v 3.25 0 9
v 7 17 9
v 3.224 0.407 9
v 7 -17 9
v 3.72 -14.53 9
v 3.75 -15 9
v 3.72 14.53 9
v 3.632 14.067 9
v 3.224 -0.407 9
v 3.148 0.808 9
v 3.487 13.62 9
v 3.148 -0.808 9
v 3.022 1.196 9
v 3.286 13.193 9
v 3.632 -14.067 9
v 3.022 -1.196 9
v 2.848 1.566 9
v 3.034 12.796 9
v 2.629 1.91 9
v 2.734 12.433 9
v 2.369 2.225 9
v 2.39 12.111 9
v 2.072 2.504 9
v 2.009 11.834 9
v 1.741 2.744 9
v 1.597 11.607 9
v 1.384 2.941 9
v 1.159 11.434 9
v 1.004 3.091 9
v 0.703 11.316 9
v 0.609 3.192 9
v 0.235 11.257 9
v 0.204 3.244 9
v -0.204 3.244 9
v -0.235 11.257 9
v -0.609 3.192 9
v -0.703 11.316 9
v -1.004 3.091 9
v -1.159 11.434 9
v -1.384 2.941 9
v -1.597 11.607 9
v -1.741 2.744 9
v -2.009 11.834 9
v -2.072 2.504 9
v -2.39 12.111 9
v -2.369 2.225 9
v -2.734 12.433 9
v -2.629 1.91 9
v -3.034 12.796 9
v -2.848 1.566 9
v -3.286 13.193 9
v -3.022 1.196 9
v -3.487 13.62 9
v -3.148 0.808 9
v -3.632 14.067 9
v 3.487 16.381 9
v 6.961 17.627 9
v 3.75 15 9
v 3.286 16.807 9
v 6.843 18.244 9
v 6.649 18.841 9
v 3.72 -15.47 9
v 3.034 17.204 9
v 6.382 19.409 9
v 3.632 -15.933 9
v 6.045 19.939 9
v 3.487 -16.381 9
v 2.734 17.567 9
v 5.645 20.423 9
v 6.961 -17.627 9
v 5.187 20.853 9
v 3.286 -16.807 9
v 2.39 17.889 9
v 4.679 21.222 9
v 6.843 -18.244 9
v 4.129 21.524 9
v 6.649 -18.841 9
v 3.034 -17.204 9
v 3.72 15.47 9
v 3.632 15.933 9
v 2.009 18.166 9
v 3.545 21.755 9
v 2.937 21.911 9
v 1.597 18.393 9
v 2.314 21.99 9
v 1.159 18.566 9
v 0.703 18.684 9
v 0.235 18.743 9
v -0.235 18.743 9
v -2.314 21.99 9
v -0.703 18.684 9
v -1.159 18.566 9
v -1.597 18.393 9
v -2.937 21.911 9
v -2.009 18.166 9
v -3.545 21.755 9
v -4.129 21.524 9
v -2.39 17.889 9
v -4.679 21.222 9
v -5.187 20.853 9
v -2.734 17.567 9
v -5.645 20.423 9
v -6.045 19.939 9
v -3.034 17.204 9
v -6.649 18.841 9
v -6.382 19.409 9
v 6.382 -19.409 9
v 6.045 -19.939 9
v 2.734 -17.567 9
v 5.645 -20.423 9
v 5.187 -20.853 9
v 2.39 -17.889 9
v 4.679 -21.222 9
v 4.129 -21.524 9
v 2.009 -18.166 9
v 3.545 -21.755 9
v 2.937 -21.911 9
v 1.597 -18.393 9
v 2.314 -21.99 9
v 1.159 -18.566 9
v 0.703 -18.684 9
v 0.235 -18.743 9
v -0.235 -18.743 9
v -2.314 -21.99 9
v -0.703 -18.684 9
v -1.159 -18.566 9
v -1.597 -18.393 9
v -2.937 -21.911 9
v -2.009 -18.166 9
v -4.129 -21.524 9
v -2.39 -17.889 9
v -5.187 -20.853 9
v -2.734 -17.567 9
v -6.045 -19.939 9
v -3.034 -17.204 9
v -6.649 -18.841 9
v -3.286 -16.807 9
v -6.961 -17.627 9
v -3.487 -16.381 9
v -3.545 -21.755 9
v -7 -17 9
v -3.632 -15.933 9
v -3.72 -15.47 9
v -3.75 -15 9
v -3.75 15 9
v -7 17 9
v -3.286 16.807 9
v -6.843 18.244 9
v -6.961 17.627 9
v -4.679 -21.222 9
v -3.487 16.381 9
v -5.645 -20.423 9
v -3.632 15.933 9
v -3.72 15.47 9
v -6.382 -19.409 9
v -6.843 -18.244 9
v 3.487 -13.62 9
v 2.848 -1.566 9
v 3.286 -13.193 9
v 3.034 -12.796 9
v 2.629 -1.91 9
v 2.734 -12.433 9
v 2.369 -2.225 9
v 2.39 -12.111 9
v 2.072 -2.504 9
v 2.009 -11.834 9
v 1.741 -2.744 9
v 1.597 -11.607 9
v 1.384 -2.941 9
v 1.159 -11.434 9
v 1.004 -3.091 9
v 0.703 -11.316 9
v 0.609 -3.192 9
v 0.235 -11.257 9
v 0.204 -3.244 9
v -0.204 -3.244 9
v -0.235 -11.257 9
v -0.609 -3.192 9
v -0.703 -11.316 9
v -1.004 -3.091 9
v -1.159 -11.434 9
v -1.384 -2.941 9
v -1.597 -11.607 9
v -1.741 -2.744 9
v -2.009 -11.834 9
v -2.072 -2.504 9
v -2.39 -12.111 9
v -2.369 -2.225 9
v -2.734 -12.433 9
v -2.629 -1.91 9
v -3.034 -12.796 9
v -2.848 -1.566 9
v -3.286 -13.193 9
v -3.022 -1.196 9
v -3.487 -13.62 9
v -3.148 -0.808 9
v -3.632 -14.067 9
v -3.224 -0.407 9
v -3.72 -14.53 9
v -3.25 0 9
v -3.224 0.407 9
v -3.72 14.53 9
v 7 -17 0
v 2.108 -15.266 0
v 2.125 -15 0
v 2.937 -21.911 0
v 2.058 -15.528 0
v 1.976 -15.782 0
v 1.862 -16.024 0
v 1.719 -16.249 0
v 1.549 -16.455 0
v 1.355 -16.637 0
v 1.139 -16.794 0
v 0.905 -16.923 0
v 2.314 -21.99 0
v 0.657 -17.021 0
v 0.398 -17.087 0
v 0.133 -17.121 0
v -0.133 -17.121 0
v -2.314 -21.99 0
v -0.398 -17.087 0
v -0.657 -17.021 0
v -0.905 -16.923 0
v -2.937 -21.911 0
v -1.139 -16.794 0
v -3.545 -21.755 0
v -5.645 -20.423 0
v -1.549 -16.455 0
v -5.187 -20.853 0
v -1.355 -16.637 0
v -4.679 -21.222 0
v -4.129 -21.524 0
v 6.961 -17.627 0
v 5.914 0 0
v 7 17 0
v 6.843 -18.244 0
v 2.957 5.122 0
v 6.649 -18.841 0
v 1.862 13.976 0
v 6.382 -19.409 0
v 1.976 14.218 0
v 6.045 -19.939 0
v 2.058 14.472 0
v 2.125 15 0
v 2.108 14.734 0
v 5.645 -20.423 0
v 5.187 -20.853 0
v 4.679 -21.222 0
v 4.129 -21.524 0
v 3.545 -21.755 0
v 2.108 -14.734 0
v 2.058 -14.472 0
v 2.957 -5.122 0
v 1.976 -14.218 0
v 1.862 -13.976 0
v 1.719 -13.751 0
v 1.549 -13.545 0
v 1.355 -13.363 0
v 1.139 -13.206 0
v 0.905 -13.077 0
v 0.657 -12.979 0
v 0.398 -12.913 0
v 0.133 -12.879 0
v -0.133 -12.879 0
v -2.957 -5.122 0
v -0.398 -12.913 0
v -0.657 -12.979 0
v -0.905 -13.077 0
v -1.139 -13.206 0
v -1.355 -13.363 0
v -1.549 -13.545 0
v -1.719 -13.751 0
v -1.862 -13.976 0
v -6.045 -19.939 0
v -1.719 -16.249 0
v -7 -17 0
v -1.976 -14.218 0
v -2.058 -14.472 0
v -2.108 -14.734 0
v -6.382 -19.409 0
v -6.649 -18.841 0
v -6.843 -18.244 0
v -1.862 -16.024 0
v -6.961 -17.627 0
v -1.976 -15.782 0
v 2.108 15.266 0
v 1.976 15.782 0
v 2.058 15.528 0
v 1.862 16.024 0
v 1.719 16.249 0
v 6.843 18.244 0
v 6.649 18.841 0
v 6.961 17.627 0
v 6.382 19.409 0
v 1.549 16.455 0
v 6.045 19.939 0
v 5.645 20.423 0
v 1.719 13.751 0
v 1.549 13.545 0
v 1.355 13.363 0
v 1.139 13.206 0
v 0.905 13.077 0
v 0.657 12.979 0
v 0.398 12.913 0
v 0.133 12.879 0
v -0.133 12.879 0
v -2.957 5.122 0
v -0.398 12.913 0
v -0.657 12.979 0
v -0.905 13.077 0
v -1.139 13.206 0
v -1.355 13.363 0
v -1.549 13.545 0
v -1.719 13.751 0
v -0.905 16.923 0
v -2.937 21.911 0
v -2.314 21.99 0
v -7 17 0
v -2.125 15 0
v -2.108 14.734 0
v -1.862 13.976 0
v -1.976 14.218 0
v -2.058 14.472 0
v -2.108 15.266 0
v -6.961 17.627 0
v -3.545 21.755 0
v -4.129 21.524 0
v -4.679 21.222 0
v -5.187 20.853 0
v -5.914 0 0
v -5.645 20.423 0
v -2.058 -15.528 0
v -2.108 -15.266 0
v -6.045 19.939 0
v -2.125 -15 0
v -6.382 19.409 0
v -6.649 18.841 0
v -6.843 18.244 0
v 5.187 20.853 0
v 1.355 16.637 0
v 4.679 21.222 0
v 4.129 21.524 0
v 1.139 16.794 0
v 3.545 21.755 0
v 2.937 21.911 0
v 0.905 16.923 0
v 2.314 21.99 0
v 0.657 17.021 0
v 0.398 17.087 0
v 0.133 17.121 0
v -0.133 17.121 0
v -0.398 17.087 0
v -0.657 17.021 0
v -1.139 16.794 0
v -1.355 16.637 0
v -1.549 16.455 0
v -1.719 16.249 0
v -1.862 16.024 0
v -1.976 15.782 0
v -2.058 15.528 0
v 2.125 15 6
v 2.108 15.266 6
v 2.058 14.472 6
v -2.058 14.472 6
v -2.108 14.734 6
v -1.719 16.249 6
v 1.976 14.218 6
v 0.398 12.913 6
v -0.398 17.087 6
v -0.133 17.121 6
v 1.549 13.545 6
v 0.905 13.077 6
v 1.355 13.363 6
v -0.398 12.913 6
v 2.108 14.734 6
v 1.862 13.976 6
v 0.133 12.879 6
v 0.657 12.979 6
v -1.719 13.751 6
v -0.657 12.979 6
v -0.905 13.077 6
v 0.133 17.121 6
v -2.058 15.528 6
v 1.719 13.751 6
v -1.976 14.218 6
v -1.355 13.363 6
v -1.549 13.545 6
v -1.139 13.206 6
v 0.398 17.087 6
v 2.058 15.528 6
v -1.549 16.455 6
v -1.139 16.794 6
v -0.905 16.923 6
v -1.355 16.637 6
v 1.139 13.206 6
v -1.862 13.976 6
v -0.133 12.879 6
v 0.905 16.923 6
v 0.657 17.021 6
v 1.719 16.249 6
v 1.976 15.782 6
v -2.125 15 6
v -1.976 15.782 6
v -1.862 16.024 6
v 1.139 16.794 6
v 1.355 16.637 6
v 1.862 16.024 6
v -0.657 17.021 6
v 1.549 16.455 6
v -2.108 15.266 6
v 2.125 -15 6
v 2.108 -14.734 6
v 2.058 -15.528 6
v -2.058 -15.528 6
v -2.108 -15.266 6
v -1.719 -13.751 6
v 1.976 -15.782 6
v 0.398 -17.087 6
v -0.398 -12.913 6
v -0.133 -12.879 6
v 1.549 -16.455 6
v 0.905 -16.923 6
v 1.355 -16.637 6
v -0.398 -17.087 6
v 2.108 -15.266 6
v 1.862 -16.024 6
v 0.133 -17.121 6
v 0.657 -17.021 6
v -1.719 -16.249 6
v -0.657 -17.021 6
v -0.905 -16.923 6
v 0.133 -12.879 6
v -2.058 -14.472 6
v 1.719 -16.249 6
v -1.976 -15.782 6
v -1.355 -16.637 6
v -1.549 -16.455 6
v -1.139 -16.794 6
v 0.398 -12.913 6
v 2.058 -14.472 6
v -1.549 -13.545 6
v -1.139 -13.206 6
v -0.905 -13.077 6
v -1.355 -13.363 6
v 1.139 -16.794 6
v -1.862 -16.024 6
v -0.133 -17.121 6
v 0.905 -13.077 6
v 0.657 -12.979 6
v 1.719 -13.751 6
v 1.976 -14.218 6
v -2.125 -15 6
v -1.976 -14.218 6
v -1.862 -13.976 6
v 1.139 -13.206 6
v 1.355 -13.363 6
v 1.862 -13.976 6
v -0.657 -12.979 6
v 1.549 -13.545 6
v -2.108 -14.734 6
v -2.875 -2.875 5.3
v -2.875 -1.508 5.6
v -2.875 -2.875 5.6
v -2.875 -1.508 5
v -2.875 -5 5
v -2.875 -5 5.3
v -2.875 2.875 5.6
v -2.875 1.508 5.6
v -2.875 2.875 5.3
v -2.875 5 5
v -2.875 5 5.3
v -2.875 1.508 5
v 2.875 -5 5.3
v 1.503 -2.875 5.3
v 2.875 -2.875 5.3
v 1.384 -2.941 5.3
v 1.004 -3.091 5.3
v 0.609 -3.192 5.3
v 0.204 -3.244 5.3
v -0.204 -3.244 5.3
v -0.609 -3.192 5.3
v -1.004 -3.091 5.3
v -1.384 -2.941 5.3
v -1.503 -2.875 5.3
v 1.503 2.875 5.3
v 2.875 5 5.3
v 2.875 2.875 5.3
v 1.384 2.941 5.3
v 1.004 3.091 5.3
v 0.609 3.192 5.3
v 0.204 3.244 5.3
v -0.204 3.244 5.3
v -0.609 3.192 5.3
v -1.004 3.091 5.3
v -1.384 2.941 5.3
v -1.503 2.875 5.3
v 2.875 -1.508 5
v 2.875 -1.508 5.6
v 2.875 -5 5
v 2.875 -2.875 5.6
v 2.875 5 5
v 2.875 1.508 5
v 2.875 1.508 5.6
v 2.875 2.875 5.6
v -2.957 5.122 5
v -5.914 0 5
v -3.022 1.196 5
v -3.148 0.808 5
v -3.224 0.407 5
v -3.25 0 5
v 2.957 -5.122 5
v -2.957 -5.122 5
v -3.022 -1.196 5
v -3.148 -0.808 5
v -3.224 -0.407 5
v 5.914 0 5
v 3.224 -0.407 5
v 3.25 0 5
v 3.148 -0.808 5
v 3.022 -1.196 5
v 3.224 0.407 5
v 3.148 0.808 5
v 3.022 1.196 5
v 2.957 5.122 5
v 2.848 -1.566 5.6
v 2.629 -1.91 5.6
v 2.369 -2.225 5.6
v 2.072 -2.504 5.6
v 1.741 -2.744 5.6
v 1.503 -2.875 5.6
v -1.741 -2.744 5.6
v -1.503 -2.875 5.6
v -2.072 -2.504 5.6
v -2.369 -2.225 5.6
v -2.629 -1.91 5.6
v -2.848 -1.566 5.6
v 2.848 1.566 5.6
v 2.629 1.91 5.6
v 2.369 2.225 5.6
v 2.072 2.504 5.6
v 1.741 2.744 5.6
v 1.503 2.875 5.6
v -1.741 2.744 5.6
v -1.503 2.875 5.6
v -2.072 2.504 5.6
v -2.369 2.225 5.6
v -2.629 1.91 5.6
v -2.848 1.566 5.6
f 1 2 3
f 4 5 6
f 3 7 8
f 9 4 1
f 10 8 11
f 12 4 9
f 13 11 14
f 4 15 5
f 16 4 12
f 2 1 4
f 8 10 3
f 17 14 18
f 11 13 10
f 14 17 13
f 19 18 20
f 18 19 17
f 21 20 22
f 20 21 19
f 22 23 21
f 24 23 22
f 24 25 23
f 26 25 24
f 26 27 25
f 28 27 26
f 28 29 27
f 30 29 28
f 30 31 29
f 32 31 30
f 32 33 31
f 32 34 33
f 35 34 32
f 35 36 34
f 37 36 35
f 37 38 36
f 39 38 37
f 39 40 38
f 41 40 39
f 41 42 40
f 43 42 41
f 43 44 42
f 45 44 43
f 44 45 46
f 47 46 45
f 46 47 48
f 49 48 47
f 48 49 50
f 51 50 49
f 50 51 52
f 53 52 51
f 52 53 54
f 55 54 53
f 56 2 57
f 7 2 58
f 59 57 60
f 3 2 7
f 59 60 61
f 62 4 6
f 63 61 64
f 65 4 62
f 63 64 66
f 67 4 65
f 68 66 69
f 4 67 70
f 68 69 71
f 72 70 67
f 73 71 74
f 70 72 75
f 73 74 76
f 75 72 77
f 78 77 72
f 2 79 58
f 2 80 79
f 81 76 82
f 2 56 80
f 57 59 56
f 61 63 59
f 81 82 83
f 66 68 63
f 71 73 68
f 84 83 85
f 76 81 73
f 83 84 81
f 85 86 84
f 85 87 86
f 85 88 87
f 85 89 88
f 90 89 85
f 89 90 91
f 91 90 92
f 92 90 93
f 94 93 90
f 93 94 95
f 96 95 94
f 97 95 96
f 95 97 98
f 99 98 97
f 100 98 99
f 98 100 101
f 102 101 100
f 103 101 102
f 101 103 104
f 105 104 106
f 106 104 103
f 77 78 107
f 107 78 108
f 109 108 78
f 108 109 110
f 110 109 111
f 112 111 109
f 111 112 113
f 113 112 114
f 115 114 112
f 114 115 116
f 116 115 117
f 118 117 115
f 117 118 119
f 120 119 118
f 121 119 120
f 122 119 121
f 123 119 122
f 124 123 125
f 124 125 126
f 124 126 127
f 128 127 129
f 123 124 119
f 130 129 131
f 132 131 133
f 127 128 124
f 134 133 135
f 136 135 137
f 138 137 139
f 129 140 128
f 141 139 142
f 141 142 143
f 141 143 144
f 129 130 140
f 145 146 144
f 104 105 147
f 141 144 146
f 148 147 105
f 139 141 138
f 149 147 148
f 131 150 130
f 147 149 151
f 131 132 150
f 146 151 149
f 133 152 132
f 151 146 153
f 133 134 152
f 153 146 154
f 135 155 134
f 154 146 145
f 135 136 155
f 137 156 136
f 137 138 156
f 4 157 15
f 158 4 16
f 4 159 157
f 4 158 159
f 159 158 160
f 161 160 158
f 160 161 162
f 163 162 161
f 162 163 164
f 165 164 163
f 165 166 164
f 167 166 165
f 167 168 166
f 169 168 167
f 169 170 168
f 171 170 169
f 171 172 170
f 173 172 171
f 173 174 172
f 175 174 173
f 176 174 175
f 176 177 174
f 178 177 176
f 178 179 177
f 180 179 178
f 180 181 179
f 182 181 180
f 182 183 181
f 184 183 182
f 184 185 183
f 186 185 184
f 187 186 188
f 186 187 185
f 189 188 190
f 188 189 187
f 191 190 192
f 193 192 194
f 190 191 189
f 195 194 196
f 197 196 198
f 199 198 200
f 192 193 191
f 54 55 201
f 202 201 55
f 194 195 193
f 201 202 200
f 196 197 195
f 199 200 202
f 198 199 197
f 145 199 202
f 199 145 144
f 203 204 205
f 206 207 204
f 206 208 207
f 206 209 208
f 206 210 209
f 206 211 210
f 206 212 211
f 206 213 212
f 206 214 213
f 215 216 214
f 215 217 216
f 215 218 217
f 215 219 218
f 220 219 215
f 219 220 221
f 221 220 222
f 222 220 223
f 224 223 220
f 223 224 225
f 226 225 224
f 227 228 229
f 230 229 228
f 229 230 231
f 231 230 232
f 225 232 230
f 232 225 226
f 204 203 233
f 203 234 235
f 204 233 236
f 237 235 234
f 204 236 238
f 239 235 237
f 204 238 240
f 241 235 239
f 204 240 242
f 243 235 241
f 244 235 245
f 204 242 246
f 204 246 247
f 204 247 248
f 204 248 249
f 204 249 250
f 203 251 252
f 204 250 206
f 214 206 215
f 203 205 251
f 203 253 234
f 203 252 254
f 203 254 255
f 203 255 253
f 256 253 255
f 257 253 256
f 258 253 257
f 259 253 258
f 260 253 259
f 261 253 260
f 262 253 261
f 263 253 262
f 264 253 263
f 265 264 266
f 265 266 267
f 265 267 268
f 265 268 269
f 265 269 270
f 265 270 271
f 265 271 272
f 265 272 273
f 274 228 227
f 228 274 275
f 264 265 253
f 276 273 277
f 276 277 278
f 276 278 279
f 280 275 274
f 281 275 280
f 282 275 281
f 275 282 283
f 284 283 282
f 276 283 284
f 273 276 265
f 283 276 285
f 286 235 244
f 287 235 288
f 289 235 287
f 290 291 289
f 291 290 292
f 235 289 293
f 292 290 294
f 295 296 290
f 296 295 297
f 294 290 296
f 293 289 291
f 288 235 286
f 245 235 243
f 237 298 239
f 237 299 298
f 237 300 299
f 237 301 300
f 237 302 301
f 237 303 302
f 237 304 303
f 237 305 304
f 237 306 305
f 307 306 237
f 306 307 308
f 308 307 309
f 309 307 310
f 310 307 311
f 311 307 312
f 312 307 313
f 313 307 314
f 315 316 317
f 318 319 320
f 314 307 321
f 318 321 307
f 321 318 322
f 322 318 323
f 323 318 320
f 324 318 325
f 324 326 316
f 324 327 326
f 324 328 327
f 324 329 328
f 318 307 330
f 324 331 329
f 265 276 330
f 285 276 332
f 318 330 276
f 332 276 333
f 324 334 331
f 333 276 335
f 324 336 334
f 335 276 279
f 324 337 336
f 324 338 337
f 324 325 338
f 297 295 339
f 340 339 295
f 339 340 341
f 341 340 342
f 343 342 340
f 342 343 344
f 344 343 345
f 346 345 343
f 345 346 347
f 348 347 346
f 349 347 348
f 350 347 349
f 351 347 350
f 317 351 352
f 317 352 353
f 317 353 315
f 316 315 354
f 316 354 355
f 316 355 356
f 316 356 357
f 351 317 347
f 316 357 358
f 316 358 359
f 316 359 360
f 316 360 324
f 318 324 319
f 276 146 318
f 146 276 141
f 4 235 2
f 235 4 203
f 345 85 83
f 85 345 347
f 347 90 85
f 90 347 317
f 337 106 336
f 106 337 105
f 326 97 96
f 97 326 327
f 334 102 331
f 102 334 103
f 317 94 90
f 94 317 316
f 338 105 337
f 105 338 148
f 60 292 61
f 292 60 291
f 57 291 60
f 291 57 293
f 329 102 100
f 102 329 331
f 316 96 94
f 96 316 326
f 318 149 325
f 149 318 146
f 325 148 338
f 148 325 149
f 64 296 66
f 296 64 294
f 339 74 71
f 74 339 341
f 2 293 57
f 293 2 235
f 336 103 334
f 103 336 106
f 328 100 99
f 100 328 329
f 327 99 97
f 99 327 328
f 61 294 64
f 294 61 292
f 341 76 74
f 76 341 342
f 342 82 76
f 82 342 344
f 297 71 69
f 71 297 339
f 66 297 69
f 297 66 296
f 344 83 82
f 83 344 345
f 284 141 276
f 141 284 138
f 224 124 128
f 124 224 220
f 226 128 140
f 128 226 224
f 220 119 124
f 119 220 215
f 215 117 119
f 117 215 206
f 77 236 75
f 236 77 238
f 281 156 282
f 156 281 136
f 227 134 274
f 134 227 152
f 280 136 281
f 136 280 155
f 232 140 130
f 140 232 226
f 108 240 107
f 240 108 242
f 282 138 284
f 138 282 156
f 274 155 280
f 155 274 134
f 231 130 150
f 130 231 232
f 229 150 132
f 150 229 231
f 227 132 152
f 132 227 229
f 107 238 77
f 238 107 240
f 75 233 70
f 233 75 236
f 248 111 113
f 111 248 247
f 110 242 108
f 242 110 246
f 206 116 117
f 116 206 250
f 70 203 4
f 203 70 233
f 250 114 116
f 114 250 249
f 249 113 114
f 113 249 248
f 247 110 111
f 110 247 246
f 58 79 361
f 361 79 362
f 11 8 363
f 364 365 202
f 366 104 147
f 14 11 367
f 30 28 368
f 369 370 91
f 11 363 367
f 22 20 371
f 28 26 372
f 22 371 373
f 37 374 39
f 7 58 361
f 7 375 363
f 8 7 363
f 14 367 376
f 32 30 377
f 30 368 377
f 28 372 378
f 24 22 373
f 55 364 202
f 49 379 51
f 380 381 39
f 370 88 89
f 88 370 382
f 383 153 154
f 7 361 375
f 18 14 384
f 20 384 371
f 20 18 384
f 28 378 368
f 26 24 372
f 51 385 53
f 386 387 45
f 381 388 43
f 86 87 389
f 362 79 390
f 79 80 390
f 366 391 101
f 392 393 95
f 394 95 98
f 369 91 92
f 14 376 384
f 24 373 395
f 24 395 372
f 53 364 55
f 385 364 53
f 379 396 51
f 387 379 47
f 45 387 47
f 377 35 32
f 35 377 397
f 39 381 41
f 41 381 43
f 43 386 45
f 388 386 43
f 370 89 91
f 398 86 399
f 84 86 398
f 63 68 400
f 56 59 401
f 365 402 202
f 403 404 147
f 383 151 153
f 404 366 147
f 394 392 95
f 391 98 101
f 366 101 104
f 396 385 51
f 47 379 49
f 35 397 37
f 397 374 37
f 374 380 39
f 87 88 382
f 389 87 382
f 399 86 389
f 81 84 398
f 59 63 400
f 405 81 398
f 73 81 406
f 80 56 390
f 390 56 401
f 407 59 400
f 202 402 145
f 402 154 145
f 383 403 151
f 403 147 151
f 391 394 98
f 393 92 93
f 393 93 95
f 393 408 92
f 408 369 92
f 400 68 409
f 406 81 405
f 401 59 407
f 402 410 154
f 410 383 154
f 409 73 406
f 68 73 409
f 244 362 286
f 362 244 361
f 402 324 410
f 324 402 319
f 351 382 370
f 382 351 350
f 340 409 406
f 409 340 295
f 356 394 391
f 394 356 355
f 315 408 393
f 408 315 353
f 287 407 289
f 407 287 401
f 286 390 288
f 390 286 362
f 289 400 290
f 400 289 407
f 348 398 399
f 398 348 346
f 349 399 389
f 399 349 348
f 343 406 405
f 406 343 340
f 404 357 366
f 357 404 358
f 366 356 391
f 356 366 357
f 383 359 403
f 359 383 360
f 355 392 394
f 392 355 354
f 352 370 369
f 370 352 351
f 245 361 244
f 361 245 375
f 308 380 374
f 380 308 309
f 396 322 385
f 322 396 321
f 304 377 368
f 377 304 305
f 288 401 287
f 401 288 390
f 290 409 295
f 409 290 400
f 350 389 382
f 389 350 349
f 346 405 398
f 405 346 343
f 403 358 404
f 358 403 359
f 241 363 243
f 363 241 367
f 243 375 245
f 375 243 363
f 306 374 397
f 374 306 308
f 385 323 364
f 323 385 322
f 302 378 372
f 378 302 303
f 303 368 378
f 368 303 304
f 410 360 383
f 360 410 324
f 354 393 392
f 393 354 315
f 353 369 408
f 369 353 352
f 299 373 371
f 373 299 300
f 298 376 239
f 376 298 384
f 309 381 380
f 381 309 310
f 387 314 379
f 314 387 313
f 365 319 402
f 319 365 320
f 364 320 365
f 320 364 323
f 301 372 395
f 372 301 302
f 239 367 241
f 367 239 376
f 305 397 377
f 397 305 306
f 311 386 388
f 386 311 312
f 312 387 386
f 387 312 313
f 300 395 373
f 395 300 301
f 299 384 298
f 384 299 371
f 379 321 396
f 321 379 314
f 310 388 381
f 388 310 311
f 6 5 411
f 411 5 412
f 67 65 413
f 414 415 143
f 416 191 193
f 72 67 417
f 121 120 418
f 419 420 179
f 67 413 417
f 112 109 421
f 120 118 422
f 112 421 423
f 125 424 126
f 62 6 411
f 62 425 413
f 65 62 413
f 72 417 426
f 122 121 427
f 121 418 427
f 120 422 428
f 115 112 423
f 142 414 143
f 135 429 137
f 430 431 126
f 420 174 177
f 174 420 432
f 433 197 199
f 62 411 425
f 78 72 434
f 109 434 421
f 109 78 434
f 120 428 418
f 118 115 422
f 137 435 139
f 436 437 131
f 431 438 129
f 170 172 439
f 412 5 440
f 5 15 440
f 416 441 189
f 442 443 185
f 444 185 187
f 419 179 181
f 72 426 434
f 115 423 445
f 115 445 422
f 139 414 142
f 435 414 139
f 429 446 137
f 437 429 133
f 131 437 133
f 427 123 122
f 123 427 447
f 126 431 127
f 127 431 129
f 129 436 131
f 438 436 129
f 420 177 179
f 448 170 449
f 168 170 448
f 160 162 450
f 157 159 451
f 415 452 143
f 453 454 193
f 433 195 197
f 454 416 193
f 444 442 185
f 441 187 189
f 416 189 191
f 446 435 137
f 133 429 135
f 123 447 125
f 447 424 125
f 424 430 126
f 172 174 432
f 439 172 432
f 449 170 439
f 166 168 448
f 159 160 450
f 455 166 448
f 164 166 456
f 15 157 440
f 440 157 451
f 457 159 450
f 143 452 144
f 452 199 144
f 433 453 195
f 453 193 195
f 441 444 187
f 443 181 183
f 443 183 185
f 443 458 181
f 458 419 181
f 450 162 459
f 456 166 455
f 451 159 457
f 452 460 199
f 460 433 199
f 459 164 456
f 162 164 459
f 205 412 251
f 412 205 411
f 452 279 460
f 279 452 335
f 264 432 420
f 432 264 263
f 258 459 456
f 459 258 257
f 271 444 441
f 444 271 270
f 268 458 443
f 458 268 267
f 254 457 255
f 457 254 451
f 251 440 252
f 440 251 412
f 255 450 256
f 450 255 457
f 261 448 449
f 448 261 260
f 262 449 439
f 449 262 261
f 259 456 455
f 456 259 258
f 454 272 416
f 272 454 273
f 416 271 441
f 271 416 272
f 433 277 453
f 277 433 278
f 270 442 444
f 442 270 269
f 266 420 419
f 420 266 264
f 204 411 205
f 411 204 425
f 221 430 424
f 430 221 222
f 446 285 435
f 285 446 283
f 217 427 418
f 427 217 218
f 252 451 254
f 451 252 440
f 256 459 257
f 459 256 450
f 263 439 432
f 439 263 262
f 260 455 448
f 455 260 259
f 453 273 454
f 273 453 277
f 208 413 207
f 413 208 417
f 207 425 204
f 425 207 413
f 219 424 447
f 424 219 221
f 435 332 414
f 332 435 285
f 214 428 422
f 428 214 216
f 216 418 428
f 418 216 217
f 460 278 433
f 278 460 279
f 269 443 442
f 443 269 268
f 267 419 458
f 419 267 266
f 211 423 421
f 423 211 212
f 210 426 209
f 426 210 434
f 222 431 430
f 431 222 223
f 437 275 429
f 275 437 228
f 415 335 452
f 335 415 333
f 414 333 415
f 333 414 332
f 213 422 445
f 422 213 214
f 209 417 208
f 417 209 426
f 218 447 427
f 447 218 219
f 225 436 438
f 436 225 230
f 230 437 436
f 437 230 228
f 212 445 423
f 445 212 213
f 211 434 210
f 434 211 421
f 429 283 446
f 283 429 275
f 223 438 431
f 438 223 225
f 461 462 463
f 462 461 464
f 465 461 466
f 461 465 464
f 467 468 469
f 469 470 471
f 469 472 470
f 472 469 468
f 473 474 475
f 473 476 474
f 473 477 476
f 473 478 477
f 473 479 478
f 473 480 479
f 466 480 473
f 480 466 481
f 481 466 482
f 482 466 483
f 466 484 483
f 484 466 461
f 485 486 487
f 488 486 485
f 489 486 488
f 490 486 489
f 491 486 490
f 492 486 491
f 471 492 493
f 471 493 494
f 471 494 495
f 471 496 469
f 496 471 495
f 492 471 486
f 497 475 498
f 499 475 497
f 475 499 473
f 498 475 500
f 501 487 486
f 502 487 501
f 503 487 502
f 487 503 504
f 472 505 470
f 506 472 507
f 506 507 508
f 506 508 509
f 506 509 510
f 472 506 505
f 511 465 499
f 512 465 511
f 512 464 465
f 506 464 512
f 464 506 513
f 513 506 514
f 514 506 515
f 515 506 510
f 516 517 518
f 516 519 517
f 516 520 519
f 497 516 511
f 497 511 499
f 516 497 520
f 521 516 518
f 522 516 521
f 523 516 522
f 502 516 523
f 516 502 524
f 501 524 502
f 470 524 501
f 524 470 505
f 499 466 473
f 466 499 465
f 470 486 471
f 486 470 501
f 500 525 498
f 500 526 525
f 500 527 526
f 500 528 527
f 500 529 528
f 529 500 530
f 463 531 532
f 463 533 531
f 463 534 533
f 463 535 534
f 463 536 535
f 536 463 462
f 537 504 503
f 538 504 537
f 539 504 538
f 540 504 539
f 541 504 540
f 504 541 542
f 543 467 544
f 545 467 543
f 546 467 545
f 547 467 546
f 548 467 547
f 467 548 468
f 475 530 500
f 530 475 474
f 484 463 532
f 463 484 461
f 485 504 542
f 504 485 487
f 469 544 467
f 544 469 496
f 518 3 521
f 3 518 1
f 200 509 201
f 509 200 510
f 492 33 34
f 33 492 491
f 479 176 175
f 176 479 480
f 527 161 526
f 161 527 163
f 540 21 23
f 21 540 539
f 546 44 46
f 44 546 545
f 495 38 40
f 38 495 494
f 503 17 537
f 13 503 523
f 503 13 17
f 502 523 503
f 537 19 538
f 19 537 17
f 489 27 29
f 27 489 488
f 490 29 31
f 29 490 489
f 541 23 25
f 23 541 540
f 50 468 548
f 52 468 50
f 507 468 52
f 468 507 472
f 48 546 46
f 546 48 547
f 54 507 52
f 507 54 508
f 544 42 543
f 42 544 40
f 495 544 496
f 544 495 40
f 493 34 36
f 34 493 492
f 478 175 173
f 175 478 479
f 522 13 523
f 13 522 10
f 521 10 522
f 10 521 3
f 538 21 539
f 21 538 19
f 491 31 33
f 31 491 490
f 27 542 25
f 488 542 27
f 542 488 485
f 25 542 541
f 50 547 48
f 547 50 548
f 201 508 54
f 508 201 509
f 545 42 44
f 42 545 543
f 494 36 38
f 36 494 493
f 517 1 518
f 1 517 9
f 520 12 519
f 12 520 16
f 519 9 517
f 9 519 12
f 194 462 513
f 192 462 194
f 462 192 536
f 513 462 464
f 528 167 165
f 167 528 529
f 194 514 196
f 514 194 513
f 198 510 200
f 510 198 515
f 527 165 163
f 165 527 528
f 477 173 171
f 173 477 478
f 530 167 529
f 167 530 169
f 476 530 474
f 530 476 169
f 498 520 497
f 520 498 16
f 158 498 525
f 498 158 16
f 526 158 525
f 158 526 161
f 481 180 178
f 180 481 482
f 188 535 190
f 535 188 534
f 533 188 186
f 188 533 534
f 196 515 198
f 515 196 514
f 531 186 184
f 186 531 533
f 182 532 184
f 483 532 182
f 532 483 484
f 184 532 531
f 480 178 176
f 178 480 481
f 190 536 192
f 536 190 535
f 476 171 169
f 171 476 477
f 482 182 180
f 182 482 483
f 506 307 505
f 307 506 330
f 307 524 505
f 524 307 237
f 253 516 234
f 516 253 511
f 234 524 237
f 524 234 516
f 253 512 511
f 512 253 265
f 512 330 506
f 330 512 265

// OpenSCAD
$fn = 50;


difference() {
	union() {
		cylinder(h = 9, r = 7.0000000000);
		translate(v = [0.0000000000, 7.5000000000, 0]) {
			hull() {
				translate(v = [-2.0000000000, 9.5000000000, 0]) {
					cylinder(h = 9, r = 5);
				}
				translate(v = [2.0000000000, 9.5000000000, 0]) {
					cylinder(h = 9, r = 5);
				}
				translate(v = [-2.0000000000, -9.5000000000, 0]) {
					cylinder(h = 9, r = 5);
				}
				translate(v = [2.0000000000, -9.5000000000, 0]) {
					cylinder(h = 9, r = 5);
				}
			}
		}
		translate(v = [0.0000000000, 7.5000000000, 0]) {
			hull() {
				translate(v = [-2.0000000000, 9.5000000000, 0]) {
					cylinder(h = 9, r = 5);
				}
				translate(v = [2.0000000000, 9.5000000000, 0]) {
					cylinder(h = 9, r = 5);
				}
				translate(v = [-2.0000000000, -9.5000000000, 0]) {
					cylinder(h = 9, r = 5);
				}
				translate(v = [2.0000000000, -9.5000000000, 0]) {
					cylinder(h = 9, r = 5);
				}
			}
		}
		translate(v = [0.0000000000, -7.5000000000, 0]) {
			hull() {
				translate(v = [-2.0000000000, 9.5000000000, 0]) {
					cylinder(h = 9, r = 5);
				}
				translate(v = [2.0000000000, 9.5000000000, 0]) {
					cylinder(h = 9, r = 5);
				}
				translate(v = [-2.0000000000, -9.5000000000, 0]) {
					cylinder(h = 9, r = 5);
				}
				translate(v = [2.0000000000, -9.5000000000, 0]) {
					cylinder(h = 9, r = 5);
				}
			}
		}
		translate(v = [0.0000000000, -7.5000000000, 0]) {
			hull() {
				translate(v = [-2.0000000000, 9.5000000000, 0]) {
					cylinder(h = 9, r = 5);
				}
				translate(v = [2.0000000000, 9.5000000000, 0]) {
					cylinder(h = 9, r = 5);
				}
				translate(v = [-2.0000000000, -9.5000000000, 0]) {
					cylinder(h = 9, r = 5);
				}
				translate(v = [2.0000000000, -9.5000000000, 0]) {
					cylinder(h = 9, r = 5);
				}
			}
		}
	}
	union() {
		translate(v = [0.0000000000, 15.0000000000, 9]) {
			rotate(a = [0, 0, 0]) {
				difference() {
					union() {
						#translate(v = [0, 0, -9.0000000000]) {
							cylinder(h = 9, r = 2.0000000000);
						}
						#translate(v = [0, 0, -3]) {
							cylinder(h = 3, r1 = 2.1250000000, r2 = 3.7500000000);
						}
						#translate(v = [0, 0, -9.0000000000]) {
							cylinder(h = 9, r = 2.1250000000);
						}
						#translate(v = [0, 0, -9.0000000000]) {
							cylinder(h = 9, r = 2.0000000000);
						}
					}
					union();
				}
			}
		}
		translate(v = [0.0000000000, 15.0000000000, 9]) {
			rotate(a = [0, 0, 0]) {
				difference() {
					union() {
						#translate(v = [0, 0, -9.0000000000]) {
							cylinder(h = 9, r = 2.0000000000);
						}
						#translate(v = [0, 0, -3]) {
							cylinder(h = 3, r1 = 2.1250000000, r2 = 3.7500000000);
						}
						#translate(v = [0, 0, -9.0000000000]) {
							cylinder(h = 9, r = 2.1250000000);
						}
						#translate(v = [0, 0, -9.0000000000]) {
							cylinder(h = 9, r = 2.0000000000);
						}
					}
					union();
				}
			}
		}
		translate(v = [0.0000000000, -15.0000000000, 9]) {
			rotate(a = [0, 0, 0]) {
				difference() {
					union() {
						#translate(v = [0, 0, -9.0000000000]) {
							cylinder(h = 9, r = 2.0000000000);
						}
						#translate(v = [0, 0, -3]) {
							cylinder(h = 3, r1 = 2.1250000000, r2 = 3.7500000000);
						}
						#translate(v = [0, 0, -9.0000000000]) {
							cylinder(h = 9, r = 2.1250000000);
						}
						#translate(v = [0, 0, -9.0000000000]) {
							cylinder(h = 9, r = 2.0000000000);
						}
					}
					union();
				}
			}
		}
		translate(v = [0.0000000000, -15.0000000000, 9]) {
			rotate(a = [0, 0, 0]) {
				difference() {
					union() {
						#translate(v = [0, 0, -9.0000000000]) {
							cylinder(h = 9, r = 2.0000000000);
						}
						#translate(v = [0, 0, -3]) {
							cylinder(h = 3, r1 = 2.1250000000, r2 = 3.7500000000);
						}
						#translate(v = [0, 0, -9.0000000000]) {
							cylinder(h = 9, r = 2.1250000000);
						}
						#translate(v = [0, 0, -9.0000000000]) {
							cylinder(h = 9, r = 2.0000000000);
						}
					}
					union();
				}
			}
		}
		translate(v = [0.0000000000, 0.0000000000, 0]) {
			rotate(a = [0, 0, 0]) {
				difference() {
					union() {
						#translate(v = [-2.8750000000, -5.0000000000, -0.3000000000]) {
							cube(size = [5.7500000000, 10, 0.3000000000]);
						}
						#translate(v = [-2.8750000000, -2.8750000000, -0.6000000000]) {
							cube(size = [5.7500000000, 5.7500000000, 0.3000000000]);
						}
						#translate(v = [-2.8750000000, -5.0000000000, 5]) {
							cube(size = [5.7500000000, 10, 0.3000000000]);
						}
						#translate(v = [-2.8750000000, -2.8750000000, 5.3000000000]) {
							cube(size = [5.7500000000, 5.7500000000, 0.3000000000]);
						}
						#translate(v = [0, 0, -100.0000000000]) {
							cylinder(h = 200, r = 3.2500000000);
						}
						#linear_extrude(height = 5) {
							polygon(points = [[5.9142500000, 0.0000000000], [2.9571250000, 5.1218907443], [-2.9571250000, 5.1218907443], [-5.9142500000, 0.0000000000], [-2.9571250000, -5.1218907443], [2.9571250000, -5.1218907443]]);
						}
						#translate(v = [-2.8750000000, -5.0000000000, -0.3000000000]) {
							cube(size = [5.7500000000, 10, 0.3000000000]);
						}
						#translate(v = [-2.8750000000, -2.8750000000, -0.6000000000]) {
							cube(size = [5.7500000000, 5.7500000000, 0.3000000000]);
						}
						#translate(v = [-2.8750000000, -5.0000000000, 5]) {
							cube(size = [5.7500000000, 10, 0.3000000000]);
						}
						#translate(v = [-2.8750000000, -2.8750000000, 5.3000000000]) {
							cube(size = [5.7500000000, 5.7500000000, 0.3000000000]);
						}
						#translate(v = [0, 0, -100.0000000000]) {
							cylinder(h = 200, r = 3.2500000000);
						}
						#translate(v = [-2.8750000000, -5.0000000000, -0.3000000000]) {
							cube(size = [5.7500000000, 10, 0.3000000000]);
						}
						#translate(v = [-2.8750000000, -2.8750000000, -0.6000000000]) {
							cube(size = [5.7500000000, 5.7500000000, 0.3000000000]);
						}
						#translate(v = [-2.8750000000, -5.0000000000, 5]) {
							cube(size = [5.7500000000, 10, 0.3000000000]);
						}
						#translate(v = [-2.8750000000, -2.8750000000, 5.3000000000]) {
							cube(size = [5.7500000000, 5.7500000000, 0.3000000000]);
						}
						#translate(v = [0, 0, -100.0000000000]) {
							cylinder(h = 200, r = 3.2500000000);
						}
					}
					union();
				}
			}
		}
		translate(v = [0, 0, -100]) {
			cylinder(h = 200, r = 3.2500000000);
		}
		translate(v = [0, 0, -100]) {
			cylinder(h = 200, r = 1.8000000000);
		}
	}
}
